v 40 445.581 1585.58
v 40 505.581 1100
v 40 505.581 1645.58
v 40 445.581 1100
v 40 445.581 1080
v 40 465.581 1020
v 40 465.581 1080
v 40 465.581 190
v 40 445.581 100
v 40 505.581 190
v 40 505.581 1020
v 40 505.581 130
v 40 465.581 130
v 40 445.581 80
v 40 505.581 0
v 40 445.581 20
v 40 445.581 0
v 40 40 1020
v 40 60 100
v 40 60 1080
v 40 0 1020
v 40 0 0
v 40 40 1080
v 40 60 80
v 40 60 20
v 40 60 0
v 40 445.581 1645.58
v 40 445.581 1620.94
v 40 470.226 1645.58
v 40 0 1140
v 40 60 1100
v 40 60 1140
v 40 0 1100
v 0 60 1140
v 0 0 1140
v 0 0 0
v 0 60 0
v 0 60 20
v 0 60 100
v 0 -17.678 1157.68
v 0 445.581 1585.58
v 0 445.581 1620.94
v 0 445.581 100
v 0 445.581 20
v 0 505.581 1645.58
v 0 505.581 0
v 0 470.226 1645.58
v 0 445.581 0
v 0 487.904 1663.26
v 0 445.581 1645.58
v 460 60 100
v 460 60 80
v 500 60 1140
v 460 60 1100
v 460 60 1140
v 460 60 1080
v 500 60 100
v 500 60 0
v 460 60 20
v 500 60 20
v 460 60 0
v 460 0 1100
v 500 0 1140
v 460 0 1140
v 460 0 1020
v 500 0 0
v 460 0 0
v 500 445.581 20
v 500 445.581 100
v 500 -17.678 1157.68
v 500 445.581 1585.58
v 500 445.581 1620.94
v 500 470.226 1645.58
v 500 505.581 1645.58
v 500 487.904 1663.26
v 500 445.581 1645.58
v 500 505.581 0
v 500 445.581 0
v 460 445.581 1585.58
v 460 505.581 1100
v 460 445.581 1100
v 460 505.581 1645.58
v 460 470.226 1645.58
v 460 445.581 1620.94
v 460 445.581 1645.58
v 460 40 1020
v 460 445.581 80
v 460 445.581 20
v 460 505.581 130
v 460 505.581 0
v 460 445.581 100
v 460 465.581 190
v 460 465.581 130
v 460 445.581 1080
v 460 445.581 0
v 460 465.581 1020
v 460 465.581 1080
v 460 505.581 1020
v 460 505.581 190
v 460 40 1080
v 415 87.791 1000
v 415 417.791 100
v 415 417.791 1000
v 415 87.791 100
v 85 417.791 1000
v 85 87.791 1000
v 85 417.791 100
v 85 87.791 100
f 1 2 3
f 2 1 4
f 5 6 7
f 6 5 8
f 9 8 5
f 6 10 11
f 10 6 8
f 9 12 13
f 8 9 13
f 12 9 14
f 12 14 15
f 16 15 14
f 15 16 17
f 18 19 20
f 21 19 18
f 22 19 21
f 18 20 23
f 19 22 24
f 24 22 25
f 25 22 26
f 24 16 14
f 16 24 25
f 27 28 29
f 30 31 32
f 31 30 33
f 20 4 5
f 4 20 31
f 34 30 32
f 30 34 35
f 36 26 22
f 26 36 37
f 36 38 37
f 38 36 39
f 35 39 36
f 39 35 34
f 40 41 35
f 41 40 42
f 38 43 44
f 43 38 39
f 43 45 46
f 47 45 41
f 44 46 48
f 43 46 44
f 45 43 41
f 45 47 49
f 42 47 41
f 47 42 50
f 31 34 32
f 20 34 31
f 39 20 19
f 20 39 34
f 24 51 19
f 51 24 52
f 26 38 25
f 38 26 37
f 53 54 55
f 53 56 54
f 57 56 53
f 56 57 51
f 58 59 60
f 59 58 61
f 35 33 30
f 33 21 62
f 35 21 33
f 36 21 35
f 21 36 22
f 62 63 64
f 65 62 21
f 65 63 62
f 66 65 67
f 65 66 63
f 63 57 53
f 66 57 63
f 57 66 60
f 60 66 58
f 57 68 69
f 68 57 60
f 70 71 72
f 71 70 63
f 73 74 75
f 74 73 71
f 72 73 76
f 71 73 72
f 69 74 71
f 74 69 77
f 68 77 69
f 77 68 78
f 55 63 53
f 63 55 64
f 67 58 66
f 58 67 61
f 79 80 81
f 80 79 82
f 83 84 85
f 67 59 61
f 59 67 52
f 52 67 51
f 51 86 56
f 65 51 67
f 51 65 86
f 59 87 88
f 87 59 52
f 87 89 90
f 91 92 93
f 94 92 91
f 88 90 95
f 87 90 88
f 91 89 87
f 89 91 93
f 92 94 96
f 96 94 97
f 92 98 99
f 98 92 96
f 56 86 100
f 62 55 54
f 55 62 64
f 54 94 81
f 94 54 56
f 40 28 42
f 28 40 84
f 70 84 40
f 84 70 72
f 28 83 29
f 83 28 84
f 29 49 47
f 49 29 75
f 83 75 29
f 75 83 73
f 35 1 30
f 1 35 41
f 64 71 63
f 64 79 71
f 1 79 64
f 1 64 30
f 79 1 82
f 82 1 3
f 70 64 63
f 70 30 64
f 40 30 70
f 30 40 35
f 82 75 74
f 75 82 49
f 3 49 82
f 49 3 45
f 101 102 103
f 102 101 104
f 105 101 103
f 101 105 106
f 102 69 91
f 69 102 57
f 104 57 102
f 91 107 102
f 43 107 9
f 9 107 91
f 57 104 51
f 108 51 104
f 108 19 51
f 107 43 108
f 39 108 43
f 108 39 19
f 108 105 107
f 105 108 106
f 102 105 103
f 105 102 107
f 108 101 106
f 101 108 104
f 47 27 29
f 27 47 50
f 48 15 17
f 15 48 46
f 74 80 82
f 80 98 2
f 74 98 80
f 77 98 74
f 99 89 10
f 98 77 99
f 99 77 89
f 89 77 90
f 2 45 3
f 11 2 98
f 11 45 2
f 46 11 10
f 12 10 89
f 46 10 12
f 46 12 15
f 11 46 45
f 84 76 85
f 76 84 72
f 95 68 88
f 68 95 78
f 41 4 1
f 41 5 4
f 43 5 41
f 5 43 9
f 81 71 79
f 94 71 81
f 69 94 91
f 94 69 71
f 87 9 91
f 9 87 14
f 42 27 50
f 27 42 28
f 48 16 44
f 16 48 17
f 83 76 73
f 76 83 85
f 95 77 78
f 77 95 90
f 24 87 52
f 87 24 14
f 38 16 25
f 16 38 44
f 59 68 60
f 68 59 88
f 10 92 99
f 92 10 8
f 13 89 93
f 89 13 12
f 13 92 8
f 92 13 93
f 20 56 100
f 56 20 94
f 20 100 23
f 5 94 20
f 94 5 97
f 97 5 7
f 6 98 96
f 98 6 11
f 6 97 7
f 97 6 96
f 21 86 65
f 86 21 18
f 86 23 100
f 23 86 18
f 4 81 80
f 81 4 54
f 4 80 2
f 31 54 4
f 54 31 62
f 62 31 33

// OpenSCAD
// A little cabinet for outside with a solar roof

// Variables
uprightX=40;
uprightY=60;
uprightIndent=uprightY/3;
IuprightIndent=uprightY-uprightIndent;
floorH=20; //thickness of board
floorOffset=uprightY+floorH+20; //height from ground the kaercher sits at
solarAngle=45; //front angle of solar roof
solarX=500; //panel Width
solarY=715; //panel Height
solarZ=25; //panel Depth
kaercherH=900; //approximate Kaercher bounding Height
kaercherX=330; //approximate Kaercher bounding Height
kaercherY=330;
kaercherHeadRoom=uprightY+20;
solarHpos=floorOffset+kaercherH+kaercherHeadRoom+uprightY;
//triangle sides
opposite = sin(solarAngle) * solarY;
adjacent = cos(solarAngle) * solarY;

// PARAMETRIC PART
//upright FL
cube([uprightX,uprightY,solarHpos]);
//upright FR
translate([solarX-uprightX,0,0]) cube([uprightX,uprightY,solarHpos]);
echo("2x front upright lengths= ",solarHpos);

// Panel / roof
translate([0,0,solarHpos])rotate([solarAngle,0,0])cube([solarX,solarY,solarZ]);

// Kaercher bounding box
translate ([solarX/2-kaercherX/2,adjacent/2-kaercherY/2,floorOffset]) color([1,1,0])cube([kaercherX,kaercherY,kaercherH]);

//upright BL
translate([0,adjacent-uprightY,0]) cube([uprightX,uprightY,solarHpos+opposite]);
//upright BR
translate([solarX-uprightX,adjacent-uprightY,0]) cube([uprightX,uprightY,solarHpos+opposite]);
echo("2x back upright lengths= ",solarHpos+opposite);

//floor
//sides
echo("FOR bottom shelf - cut in BL/BR/FR/FL at height of ", floorOffset-floorH-uprightY," cut to depth of ", uprightIndent, " and length of ",uprightY," at the long INSIDE side");
color([1,0,0]) translate([0,IuprightIndent,floorOffset-floorH-uprightY]) cube([uprightX,adjacent-(2*uprightY)+(2*uprightIndent),uprightY]);
color([1,0,0]) translate([solarX-uprightX,IuprightIndent,floorOffset-floorH-uprightY]) cube([uprightX,adjacent-(2*uprightY)+(2*uprightIndent),uprightY]);
echo("2x bottom sides length= ",adjacent-(2*uprightY)+(2*uprightIndent));
//bottom floor board
translate([0,uprightY,floorOffset-floorH]) cube([solarX,adjacent-(2*uprightY),floorH]);
echo("1x floor board XxY= ",solarX,adjacent-(2*uprightY));

//bottom back
echo("FOR bottom back - cut in BL/BR at height of ", floorOffset-uprightY+(1.5*uprightY)," cut to depth of ", uprightX, " and length of ",uprightY," at the long BACK side");
color([1,0,0]) translate([0,adjacent-uprightX,floorOffset-uprightY+(1.5*uprightY)]) cube([solarX,uprightX,uprightY]);
//top back
echo("FOR top shelf - cut in BL/BR/FR/FL at height of ", floorOffset+kaercherH+kaercherHeadRoom-uprightY," cut to depth of ", uprightX, " and length of ",uprightY," at the long OUTSIDE side");
color([1,0,0]) translate([0,adjacent-uprightX,floorOffset+kaercherH+kaercherHeadRoom-uprightY]) cube([solarX,uprightX,uprightY]);
//top front
color([1,0,0]) translate([0,0,floorOffset+kaercherH+kaercherHeadRoom-uprightY]) cube([solarX,uprightX,uprightY]);
echo("3x back and front length= ",solarX);

//top shelf board
translate([uprightX,0,floorOffset+kaercherH+kaercherHeadRoom]) cube([solarX-(2*uprightX),adjacent,floorH]);
echo("1x shelf board XxY= ",solarX-(2*uprightX),adjacent);
